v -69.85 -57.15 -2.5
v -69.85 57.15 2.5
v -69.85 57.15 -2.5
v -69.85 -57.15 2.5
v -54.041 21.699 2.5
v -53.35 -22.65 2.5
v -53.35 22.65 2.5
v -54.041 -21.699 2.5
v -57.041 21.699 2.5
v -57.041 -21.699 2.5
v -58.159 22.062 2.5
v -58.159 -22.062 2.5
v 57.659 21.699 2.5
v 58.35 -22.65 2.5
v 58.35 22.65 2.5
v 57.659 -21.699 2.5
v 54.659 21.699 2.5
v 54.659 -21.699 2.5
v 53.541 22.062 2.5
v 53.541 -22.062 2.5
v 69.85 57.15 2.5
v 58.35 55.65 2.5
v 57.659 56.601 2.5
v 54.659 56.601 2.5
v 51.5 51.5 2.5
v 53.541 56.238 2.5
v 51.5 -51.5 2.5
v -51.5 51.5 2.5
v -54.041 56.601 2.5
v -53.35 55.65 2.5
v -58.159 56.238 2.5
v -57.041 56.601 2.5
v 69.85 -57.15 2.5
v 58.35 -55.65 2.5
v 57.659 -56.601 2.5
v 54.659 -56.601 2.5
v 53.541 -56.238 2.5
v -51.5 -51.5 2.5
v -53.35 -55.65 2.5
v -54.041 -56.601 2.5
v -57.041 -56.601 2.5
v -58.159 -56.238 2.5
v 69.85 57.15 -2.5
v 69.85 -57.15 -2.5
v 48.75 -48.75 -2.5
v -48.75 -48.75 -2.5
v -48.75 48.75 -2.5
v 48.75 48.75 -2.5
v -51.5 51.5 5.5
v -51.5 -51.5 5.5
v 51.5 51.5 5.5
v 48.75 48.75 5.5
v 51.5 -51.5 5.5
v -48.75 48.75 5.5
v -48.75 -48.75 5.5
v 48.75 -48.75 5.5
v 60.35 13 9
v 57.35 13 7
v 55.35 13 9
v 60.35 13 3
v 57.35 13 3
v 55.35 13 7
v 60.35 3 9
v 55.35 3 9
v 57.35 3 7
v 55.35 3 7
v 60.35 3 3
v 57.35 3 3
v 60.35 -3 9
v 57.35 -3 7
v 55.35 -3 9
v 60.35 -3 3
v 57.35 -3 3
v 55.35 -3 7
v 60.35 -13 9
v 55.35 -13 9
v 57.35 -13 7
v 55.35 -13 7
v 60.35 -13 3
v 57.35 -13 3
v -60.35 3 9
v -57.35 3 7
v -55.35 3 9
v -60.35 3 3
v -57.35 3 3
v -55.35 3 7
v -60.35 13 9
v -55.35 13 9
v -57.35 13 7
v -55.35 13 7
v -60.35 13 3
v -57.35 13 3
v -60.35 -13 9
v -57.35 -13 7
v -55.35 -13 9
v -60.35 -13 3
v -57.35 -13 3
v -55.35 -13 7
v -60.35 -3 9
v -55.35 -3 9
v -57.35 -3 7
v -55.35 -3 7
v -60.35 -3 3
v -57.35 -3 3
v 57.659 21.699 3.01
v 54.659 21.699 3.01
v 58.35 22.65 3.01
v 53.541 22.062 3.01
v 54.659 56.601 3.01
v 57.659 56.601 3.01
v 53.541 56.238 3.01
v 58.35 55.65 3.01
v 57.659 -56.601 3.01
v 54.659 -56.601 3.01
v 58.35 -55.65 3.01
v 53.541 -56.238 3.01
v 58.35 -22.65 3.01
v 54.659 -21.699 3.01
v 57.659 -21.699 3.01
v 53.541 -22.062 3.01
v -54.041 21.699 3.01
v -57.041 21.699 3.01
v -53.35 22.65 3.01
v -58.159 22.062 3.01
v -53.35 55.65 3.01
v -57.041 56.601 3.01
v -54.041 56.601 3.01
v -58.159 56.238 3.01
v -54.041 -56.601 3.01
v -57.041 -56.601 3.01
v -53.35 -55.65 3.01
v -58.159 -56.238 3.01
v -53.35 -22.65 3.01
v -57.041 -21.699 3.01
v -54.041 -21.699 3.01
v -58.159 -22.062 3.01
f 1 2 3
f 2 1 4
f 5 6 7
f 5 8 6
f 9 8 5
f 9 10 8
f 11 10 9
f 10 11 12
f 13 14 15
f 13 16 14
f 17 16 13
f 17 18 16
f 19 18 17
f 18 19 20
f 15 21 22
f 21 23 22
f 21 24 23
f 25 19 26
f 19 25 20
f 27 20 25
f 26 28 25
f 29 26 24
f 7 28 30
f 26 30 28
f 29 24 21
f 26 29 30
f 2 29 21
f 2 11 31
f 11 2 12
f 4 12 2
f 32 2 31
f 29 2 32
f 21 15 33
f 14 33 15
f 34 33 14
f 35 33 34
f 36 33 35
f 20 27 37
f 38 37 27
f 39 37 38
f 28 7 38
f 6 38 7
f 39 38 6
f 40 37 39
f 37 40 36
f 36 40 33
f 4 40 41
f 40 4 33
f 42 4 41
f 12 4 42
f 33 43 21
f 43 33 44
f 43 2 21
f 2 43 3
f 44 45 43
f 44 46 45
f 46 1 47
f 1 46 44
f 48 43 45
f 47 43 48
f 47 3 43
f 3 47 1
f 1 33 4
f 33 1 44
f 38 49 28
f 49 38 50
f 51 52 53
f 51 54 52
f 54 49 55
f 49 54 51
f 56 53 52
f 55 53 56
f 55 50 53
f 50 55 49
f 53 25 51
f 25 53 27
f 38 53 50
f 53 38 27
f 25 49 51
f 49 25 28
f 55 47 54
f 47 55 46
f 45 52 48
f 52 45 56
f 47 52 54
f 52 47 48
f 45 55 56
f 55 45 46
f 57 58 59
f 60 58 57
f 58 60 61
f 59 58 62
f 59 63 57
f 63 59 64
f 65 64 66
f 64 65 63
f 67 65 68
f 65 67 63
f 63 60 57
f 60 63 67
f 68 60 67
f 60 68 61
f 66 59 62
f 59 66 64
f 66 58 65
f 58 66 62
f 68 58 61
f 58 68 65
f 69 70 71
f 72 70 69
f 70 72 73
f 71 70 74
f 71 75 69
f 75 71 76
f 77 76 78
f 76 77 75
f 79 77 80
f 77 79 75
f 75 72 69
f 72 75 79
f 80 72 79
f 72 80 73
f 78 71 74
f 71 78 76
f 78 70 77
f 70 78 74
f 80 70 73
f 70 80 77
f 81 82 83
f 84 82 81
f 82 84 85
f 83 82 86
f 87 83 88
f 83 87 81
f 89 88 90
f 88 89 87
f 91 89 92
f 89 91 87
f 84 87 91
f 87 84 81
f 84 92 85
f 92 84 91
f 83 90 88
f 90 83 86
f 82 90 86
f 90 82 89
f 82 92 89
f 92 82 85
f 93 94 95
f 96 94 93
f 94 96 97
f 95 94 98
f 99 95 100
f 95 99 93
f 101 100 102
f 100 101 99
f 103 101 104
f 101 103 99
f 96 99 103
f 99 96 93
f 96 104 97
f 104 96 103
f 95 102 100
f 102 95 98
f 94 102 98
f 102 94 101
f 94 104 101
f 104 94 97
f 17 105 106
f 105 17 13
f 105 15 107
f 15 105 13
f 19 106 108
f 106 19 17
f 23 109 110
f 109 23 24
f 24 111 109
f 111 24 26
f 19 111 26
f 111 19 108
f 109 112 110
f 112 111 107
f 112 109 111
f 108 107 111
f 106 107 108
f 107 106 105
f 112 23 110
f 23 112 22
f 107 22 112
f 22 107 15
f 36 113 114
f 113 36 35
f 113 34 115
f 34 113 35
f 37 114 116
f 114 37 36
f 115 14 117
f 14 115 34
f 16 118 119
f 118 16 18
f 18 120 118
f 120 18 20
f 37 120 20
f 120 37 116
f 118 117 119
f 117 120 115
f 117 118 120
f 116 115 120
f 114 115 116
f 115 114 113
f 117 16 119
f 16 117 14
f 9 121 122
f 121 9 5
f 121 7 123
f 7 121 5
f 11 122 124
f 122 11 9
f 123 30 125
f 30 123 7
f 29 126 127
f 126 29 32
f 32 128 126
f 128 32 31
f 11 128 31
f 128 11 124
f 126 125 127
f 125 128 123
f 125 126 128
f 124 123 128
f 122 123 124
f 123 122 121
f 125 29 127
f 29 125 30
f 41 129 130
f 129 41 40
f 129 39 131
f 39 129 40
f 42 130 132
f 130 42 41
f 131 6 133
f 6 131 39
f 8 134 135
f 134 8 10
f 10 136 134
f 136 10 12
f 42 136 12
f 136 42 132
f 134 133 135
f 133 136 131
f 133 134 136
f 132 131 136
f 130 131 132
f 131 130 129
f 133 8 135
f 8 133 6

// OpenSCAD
/*

First try of a Polaroid 600 / Polaroid 600se Adapter

This work is licensed under a Creative Commons Attribution-NonCommercial-ShareAlike 3.0 Unported License.

https://creativecommons.org/licenses/by-nc-sa/3.0/

Todo:
1) Test test test


*/


base = 0;
outer_box_width= 139.7;
outer_box_depth = 114.3;
box_height = 5;

lip_depth = 3;
lip_side = 103;

inner_box_side = 97.5;

module roundedRect(size, radius)
{
	x = size[0];
	y = size[1];
	z = size[2];

	linear_extrude(height=z)
	hull()
	{
		// place 4 circles in the corners, with the given radius
		translate([(-x/2)+(radius/2), (-y/2)+(radius/2), 0])
		circle(r=radius);
	
		translate([(x/2)-(radius/2), (-y/2)+(radius/2), 0])
		circle(r=radius);
	
		translate([(-x/2)+(radius/2), (y/2)-(radius/2), 0])
		circle(r=radius);
	
		translate([(x/2)-(radius/2), (y/2)-(radius/2), 0])
		circle(r=radius);
	}
}


module frame() {
    difference() {
        union() {
            outer_box = [outer_box_width,outer_box_depth,box_height];
            cube(outer_box, center=true);
 
            translate([0,0,box_height-1]){
                inner_box_lip = [lip_side,lip_side,lip_depth];
                cube(inner_box_lip, center=true);
            }
        }
        
        translate([0,0,2]){
            inner_box = [inner_box_side,inner_box_side,11];
            cube(inner_box, center=true);
        }
    }
}

    
module clawObject() {
    claw_width=10;
    claw_depth = 5;
    claw_height=6;
    
    difference() {
        claw_coords = [claw_width,claw_depth,claw_height];
        cube(claw_coords, center=true);
        translate([0,-1.5,-1]){
            color( "blue", 1.0 ){
            claw = [claw_width,claw_depth-3,claw_height-2];
            cube(claw, center=true);
            }
        }
    }
}


module claws() {
 
    claw_x = outer_box_width/2-12;
    claw_y = 8 ; 

     translate([claw_x,claw_y,6]){
            rotate(a=[0,0,-90]) {
                clawObject();
            }
        }
     translate([claw_x,-claw_y,6]){
            rotate(a=[0,0,-90]) {
                clawObject();
            }
        }
      translate([-claw_x,claw_y,6]){
            rotate(a=[0,0,90]) {
                clawObject();
            }
        }
     translate([-claw_x,-claw_y,6]){
            rotate(a=[0,0,90]) {
                clawObject();
            }
        }
}


module nub() {
    
    nub_height = box_height;
    nub_width = 4;
    nub_depth = 34;
    nub = [nub_width,nub_depth,nub_height];
    roundedRect(nub, 1);
    
}

module nubs() {
    claw_x = outer_box_width/2-14;
    claw_y = outer_box_depth/2-18 ; 
    rotate(0,0,180){
        translate([claw_x,claw_y,-1.99]){
            nub();
        }
    }
    rotate(0,0,180){
        translate([claw_x,-claw_y,-1.99]){
            nub();
        }
    }
    rotate(0,0,180){
        translate([-claw_x,claw_y,-1.99]){
            nub();
        }
    }
    rotate(0,0,180){
        translate([-claw_x,-claw_y,-1.99]){
            nub();
        }
    }
}

nubs();
/* body */
    

translate([0,0,0]){
  frame();
  claws();
}


 
 

echo(version=version());
